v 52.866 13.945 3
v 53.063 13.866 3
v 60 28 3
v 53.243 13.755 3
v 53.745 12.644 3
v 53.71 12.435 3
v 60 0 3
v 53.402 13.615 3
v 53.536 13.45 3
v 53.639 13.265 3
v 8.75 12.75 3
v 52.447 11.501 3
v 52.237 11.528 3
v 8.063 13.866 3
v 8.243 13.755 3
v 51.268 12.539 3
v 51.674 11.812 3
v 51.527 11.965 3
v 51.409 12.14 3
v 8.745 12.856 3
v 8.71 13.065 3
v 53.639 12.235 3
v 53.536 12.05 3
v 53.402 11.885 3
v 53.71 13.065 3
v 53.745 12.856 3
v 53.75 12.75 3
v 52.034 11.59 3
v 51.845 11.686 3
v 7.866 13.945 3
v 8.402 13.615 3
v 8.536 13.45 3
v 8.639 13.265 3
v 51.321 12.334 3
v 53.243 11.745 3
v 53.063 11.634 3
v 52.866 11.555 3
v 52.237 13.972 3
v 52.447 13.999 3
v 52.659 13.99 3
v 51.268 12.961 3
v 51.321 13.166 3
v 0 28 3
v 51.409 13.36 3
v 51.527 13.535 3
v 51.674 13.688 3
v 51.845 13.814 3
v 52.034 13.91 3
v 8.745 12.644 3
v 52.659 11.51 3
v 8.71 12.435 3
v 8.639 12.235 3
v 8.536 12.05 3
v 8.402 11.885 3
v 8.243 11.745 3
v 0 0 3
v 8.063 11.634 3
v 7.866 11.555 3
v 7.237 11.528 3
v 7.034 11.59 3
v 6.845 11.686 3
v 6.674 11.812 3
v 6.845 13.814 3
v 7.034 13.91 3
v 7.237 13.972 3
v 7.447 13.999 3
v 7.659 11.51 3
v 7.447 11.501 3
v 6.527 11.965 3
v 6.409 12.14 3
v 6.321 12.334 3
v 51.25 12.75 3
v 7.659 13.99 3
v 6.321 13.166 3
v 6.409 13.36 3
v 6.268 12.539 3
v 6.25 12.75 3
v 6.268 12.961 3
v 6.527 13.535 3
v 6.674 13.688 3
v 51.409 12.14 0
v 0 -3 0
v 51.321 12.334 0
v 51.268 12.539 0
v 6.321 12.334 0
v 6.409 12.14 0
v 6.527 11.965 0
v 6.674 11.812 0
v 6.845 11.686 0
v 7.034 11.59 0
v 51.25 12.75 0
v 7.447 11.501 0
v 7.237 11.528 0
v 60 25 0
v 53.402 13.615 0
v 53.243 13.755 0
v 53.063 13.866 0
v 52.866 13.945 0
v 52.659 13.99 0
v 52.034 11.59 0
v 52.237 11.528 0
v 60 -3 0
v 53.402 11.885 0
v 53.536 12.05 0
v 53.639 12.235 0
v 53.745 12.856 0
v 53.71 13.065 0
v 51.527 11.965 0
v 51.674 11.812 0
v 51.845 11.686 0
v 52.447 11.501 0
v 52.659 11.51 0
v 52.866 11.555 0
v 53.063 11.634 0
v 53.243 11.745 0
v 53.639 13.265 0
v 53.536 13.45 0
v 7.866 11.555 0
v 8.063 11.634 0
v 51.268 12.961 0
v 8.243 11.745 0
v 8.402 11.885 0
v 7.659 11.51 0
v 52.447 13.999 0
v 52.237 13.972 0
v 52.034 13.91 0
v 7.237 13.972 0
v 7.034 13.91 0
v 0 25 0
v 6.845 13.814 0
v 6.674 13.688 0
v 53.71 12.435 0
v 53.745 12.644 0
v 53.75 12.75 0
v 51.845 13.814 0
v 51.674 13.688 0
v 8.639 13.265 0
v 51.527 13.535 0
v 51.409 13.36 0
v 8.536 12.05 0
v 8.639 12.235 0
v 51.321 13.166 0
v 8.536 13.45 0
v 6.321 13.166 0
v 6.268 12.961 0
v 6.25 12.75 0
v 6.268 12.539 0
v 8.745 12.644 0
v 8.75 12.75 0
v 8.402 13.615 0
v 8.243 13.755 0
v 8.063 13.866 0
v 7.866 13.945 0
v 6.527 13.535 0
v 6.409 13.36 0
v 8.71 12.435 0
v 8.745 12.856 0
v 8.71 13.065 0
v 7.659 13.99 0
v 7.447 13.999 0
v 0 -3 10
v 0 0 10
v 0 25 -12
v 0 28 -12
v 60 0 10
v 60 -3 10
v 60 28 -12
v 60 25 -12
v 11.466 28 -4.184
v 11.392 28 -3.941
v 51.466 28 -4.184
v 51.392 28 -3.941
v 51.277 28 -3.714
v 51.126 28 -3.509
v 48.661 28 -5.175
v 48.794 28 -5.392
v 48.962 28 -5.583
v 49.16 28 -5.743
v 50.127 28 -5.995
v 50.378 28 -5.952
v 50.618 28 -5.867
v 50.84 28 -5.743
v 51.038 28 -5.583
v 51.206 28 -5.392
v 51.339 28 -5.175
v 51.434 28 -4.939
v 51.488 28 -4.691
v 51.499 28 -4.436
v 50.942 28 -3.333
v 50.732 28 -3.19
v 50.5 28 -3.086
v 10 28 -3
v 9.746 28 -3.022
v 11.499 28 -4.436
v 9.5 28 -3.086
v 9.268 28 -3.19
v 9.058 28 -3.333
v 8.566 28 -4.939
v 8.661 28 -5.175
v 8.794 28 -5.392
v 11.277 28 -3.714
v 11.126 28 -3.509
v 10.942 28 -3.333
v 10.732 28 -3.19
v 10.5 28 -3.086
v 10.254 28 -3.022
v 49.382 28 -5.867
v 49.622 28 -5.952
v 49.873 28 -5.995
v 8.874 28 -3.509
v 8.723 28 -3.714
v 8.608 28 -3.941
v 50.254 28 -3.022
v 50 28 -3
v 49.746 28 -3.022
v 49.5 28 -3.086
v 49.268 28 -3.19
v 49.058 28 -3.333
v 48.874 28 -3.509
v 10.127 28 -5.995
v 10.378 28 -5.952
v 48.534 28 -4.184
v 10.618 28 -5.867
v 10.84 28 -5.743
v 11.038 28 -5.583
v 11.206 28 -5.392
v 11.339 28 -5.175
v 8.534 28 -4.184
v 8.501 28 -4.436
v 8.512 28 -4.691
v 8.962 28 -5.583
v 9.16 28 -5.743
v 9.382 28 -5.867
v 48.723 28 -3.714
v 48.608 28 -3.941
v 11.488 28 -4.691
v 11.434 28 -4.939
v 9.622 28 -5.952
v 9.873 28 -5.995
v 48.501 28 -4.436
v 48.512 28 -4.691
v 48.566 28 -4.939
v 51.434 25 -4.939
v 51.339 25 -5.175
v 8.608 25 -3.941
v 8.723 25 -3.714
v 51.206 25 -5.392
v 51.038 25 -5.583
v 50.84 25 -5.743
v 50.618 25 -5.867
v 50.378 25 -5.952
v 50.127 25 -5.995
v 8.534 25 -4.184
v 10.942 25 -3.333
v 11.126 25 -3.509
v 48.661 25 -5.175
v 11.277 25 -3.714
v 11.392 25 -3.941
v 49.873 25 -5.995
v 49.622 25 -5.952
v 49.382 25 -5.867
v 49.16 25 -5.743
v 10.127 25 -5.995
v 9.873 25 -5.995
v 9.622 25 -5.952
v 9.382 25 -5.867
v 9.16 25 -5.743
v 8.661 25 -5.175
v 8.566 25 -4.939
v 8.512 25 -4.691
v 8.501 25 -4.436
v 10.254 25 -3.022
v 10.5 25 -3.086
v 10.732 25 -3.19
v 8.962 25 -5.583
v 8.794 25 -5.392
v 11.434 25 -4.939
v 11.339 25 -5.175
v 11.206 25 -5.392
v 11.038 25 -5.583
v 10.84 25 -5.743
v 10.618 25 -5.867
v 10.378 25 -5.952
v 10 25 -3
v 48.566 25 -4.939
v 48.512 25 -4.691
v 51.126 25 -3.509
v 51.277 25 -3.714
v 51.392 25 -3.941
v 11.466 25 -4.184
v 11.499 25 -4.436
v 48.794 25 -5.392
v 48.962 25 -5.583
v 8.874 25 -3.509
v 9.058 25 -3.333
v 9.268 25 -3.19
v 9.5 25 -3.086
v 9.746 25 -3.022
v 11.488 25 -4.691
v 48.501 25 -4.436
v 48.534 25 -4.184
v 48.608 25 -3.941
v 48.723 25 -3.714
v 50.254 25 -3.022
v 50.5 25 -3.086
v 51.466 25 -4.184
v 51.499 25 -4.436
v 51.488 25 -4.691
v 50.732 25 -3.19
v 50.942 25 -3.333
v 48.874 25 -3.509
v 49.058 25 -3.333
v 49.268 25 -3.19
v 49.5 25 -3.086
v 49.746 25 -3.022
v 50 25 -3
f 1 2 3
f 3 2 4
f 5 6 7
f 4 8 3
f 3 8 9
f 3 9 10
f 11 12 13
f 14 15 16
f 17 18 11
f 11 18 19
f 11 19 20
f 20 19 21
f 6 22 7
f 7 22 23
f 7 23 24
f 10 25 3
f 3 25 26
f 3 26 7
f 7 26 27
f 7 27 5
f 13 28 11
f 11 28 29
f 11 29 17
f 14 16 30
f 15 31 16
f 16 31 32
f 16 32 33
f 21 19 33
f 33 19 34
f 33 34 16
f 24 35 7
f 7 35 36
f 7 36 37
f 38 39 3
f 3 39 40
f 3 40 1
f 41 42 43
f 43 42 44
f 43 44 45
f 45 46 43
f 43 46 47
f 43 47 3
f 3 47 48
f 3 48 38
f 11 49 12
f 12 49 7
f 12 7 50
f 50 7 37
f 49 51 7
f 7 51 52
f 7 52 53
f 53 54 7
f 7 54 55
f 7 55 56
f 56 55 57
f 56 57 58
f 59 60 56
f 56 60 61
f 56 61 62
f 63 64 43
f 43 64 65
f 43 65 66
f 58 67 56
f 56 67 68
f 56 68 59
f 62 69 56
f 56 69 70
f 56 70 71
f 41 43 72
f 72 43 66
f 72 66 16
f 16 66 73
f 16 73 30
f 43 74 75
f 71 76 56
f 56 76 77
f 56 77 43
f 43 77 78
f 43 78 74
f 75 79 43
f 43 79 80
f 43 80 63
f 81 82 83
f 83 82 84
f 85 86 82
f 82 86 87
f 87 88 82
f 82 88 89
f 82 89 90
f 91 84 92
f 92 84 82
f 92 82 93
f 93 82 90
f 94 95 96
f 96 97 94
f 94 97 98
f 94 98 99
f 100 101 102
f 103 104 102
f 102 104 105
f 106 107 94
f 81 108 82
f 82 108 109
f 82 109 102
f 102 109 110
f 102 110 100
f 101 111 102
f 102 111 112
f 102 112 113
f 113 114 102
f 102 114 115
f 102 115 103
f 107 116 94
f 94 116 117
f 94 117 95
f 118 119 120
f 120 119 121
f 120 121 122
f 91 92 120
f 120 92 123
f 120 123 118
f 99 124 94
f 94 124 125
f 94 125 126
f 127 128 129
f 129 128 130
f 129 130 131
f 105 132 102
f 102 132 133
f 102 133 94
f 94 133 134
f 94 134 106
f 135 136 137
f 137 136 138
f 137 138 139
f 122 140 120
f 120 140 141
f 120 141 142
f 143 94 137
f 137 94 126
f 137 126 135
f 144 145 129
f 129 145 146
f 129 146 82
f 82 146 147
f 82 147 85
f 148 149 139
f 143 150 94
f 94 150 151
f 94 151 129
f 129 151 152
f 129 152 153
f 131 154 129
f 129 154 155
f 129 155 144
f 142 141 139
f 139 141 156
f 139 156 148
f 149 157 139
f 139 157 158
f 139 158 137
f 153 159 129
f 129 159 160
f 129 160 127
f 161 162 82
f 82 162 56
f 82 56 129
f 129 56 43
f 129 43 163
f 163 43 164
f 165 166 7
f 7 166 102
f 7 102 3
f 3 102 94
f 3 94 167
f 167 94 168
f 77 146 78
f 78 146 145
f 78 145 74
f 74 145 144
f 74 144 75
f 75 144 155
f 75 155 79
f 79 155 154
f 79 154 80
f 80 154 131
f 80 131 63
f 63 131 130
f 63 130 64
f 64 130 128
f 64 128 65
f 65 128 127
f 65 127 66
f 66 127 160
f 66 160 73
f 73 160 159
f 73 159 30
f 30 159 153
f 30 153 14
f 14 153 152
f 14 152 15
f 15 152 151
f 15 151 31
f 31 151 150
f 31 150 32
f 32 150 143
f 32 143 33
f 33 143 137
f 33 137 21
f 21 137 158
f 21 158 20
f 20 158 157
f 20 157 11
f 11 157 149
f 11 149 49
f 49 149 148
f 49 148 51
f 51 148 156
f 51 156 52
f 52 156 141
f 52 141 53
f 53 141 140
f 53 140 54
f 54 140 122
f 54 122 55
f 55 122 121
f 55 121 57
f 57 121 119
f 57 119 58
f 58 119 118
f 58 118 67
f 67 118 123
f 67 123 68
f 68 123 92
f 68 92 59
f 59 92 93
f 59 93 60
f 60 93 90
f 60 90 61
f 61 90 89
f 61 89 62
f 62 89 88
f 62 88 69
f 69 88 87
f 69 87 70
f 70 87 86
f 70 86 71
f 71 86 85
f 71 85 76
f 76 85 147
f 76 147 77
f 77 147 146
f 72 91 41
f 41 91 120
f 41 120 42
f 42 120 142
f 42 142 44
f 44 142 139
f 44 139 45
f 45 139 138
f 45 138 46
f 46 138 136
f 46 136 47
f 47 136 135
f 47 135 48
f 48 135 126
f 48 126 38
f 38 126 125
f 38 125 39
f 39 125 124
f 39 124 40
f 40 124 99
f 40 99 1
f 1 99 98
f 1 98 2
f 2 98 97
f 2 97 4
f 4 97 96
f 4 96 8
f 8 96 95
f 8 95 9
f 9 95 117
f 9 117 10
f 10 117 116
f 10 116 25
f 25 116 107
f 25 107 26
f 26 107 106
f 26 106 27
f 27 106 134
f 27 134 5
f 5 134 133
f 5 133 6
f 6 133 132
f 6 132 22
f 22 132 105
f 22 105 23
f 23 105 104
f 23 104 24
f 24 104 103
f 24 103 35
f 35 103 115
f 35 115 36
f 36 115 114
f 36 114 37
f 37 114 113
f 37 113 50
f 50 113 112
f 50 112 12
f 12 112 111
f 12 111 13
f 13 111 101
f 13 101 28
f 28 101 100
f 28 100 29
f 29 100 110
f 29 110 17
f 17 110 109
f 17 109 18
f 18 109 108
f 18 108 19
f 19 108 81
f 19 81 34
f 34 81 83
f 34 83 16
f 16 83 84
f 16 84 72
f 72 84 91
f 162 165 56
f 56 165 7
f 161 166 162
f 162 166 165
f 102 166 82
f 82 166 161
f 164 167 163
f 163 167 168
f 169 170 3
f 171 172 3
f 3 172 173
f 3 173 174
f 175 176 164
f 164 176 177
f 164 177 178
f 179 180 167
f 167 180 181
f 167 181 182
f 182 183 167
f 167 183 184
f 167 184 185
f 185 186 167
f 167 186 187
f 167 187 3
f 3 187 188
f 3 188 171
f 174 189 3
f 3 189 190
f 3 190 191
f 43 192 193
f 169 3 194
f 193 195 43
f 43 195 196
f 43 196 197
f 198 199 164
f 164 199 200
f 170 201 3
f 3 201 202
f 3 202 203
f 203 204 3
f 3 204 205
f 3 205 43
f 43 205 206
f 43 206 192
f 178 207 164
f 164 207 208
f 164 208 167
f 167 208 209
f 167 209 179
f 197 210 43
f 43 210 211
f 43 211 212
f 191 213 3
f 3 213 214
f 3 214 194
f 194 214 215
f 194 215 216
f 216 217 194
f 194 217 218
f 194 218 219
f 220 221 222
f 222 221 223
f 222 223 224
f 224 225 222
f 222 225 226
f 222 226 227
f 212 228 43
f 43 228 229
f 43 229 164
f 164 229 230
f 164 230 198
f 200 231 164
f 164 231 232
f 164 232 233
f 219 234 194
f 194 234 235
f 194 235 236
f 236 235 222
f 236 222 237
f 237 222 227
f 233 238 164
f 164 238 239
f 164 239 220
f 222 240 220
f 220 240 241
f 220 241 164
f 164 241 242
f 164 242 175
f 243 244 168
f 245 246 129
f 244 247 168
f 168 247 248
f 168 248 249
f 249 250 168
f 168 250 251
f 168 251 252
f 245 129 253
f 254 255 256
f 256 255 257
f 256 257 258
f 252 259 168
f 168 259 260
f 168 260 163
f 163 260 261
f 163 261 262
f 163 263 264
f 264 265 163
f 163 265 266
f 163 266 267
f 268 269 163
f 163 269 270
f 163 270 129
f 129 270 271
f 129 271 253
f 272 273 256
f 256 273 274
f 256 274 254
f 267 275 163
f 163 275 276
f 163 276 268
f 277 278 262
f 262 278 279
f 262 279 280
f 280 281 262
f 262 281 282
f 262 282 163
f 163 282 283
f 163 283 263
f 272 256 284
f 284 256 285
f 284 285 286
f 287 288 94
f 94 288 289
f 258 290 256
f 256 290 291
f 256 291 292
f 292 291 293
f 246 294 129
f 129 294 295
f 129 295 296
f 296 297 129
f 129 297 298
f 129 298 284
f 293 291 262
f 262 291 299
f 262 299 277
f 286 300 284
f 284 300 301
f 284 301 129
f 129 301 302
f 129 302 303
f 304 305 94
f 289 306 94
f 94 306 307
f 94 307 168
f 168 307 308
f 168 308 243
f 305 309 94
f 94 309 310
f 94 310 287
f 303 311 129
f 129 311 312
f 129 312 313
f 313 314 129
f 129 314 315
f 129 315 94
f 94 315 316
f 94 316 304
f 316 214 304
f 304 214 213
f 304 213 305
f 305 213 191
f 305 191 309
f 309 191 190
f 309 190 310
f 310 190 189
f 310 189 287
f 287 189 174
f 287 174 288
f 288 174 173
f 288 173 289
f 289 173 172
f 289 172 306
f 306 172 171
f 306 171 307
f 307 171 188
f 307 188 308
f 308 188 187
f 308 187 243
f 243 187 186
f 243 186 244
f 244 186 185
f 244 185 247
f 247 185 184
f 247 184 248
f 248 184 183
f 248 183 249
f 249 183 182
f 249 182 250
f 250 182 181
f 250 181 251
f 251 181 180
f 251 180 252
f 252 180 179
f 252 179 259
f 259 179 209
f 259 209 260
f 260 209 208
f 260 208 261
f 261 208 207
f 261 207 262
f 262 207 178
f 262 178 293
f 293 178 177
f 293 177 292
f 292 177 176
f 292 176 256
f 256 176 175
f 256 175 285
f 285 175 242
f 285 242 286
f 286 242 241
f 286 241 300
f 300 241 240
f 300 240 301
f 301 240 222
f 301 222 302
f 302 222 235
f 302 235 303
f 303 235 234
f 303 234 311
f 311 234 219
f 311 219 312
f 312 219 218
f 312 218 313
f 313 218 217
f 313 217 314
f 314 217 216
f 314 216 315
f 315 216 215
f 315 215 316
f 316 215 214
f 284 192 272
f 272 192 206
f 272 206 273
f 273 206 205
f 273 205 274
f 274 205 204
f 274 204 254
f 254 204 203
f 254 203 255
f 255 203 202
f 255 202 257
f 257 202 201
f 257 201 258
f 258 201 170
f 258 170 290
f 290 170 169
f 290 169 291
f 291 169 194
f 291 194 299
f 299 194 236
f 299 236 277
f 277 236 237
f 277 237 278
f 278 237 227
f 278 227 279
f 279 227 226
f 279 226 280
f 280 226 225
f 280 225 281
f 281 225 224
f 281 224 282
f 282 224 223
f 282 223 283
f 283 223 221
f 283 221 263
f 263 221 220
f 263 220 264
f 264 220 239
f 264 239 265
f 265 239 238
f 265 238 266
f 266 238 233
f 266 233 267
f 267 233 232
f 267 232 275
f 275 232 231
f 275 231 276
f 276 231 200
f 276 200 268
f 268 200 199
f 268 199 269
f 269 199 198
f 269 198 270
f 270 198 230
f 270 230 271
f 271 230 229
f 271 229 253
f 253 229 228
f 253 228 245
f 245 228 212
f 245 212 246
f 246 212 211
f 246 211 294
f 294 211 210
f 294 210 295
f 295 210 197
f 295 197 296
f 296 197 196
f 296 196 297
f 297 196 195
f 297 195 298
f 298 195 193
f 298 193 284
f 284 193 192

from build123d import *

# Parameters (mm, degrees)
SKETCH1_W           = 60
SKETCH1_H           = 25
SKETCH1_R           = 1.25
BOSS_EXTRUDE1_DEPTH = 3
SKETCH2_W           = 60
SKETCH2_H           = 10
BOSS_EXTRUDE2_DEPTH = 3
SKETCH3_W           = 60
SKETCH3_H           = 15
BOSS_EXTRUDE3_DEPTH = 3
SKETCH4_R           = 1.5
CUT_EXTRUDE1_DEPTH  = 3


with BuildPart() as part:
    # Sketch1 → Boss-Extrude1 (new body)
    with BuildSketch(Plane.XY):
        with Locations((30, 12.5)):
            Rectangle(SKETCH1_W, SKETCH1_H)
        with Locations((7.5, 12.75)):
            Circle(SKETCH1_R, mode=Mode.SUBTRACT)
        with Locations((52.5, 12.75)):
            Circle(SKETCH1_R, mode=Mode.SUBTRACT)
    extrude(amount=BOSS_EXTRUDE1_DEPTH)

    # Sketch2 → Boss-Extrude2 (add)
    with BuildSketch(Plane.XZ):
        with Locations((30, 5)):
            Rectangle(SKETCH2_W, SKETCH2_H)
    extrude(amount=BOSS_EXTRUDE2_DEPTH)

    # Sketch3 → Boss-Extrude3 (add)
    with BuildSketch(Plane(origin=(0, 25, 0), x_dir=(1, 0, 0), z_dir=(0, 1, 0))):
        with Locations((30, 4.5)):
            Rectangle(SKETCH3_W, SKETCH3_H)
    extrude(amount=BOSS_EXTRUDE3_DEPTH)

    # Sketch4 → Cut-Extrude1 (cut)
    with BuildSketch(Plane(origin=(0, 28, 0), x_dir=(1, 0, 0), z_dir=(0, 1, 0))):
        with Locations(Location((10, 4.5, 0), (0, 0, 270))):
            Circle(SKETCH4_R)
        with Locations(Location((50, 4.5, 0), (0, 0, 270))):
            Circle(SKETCH4_R)
    extrude(amount=-CUT_EXTRUDE1_DEPTH, mode=Mode.SUBTRACT)


solid = part.part
